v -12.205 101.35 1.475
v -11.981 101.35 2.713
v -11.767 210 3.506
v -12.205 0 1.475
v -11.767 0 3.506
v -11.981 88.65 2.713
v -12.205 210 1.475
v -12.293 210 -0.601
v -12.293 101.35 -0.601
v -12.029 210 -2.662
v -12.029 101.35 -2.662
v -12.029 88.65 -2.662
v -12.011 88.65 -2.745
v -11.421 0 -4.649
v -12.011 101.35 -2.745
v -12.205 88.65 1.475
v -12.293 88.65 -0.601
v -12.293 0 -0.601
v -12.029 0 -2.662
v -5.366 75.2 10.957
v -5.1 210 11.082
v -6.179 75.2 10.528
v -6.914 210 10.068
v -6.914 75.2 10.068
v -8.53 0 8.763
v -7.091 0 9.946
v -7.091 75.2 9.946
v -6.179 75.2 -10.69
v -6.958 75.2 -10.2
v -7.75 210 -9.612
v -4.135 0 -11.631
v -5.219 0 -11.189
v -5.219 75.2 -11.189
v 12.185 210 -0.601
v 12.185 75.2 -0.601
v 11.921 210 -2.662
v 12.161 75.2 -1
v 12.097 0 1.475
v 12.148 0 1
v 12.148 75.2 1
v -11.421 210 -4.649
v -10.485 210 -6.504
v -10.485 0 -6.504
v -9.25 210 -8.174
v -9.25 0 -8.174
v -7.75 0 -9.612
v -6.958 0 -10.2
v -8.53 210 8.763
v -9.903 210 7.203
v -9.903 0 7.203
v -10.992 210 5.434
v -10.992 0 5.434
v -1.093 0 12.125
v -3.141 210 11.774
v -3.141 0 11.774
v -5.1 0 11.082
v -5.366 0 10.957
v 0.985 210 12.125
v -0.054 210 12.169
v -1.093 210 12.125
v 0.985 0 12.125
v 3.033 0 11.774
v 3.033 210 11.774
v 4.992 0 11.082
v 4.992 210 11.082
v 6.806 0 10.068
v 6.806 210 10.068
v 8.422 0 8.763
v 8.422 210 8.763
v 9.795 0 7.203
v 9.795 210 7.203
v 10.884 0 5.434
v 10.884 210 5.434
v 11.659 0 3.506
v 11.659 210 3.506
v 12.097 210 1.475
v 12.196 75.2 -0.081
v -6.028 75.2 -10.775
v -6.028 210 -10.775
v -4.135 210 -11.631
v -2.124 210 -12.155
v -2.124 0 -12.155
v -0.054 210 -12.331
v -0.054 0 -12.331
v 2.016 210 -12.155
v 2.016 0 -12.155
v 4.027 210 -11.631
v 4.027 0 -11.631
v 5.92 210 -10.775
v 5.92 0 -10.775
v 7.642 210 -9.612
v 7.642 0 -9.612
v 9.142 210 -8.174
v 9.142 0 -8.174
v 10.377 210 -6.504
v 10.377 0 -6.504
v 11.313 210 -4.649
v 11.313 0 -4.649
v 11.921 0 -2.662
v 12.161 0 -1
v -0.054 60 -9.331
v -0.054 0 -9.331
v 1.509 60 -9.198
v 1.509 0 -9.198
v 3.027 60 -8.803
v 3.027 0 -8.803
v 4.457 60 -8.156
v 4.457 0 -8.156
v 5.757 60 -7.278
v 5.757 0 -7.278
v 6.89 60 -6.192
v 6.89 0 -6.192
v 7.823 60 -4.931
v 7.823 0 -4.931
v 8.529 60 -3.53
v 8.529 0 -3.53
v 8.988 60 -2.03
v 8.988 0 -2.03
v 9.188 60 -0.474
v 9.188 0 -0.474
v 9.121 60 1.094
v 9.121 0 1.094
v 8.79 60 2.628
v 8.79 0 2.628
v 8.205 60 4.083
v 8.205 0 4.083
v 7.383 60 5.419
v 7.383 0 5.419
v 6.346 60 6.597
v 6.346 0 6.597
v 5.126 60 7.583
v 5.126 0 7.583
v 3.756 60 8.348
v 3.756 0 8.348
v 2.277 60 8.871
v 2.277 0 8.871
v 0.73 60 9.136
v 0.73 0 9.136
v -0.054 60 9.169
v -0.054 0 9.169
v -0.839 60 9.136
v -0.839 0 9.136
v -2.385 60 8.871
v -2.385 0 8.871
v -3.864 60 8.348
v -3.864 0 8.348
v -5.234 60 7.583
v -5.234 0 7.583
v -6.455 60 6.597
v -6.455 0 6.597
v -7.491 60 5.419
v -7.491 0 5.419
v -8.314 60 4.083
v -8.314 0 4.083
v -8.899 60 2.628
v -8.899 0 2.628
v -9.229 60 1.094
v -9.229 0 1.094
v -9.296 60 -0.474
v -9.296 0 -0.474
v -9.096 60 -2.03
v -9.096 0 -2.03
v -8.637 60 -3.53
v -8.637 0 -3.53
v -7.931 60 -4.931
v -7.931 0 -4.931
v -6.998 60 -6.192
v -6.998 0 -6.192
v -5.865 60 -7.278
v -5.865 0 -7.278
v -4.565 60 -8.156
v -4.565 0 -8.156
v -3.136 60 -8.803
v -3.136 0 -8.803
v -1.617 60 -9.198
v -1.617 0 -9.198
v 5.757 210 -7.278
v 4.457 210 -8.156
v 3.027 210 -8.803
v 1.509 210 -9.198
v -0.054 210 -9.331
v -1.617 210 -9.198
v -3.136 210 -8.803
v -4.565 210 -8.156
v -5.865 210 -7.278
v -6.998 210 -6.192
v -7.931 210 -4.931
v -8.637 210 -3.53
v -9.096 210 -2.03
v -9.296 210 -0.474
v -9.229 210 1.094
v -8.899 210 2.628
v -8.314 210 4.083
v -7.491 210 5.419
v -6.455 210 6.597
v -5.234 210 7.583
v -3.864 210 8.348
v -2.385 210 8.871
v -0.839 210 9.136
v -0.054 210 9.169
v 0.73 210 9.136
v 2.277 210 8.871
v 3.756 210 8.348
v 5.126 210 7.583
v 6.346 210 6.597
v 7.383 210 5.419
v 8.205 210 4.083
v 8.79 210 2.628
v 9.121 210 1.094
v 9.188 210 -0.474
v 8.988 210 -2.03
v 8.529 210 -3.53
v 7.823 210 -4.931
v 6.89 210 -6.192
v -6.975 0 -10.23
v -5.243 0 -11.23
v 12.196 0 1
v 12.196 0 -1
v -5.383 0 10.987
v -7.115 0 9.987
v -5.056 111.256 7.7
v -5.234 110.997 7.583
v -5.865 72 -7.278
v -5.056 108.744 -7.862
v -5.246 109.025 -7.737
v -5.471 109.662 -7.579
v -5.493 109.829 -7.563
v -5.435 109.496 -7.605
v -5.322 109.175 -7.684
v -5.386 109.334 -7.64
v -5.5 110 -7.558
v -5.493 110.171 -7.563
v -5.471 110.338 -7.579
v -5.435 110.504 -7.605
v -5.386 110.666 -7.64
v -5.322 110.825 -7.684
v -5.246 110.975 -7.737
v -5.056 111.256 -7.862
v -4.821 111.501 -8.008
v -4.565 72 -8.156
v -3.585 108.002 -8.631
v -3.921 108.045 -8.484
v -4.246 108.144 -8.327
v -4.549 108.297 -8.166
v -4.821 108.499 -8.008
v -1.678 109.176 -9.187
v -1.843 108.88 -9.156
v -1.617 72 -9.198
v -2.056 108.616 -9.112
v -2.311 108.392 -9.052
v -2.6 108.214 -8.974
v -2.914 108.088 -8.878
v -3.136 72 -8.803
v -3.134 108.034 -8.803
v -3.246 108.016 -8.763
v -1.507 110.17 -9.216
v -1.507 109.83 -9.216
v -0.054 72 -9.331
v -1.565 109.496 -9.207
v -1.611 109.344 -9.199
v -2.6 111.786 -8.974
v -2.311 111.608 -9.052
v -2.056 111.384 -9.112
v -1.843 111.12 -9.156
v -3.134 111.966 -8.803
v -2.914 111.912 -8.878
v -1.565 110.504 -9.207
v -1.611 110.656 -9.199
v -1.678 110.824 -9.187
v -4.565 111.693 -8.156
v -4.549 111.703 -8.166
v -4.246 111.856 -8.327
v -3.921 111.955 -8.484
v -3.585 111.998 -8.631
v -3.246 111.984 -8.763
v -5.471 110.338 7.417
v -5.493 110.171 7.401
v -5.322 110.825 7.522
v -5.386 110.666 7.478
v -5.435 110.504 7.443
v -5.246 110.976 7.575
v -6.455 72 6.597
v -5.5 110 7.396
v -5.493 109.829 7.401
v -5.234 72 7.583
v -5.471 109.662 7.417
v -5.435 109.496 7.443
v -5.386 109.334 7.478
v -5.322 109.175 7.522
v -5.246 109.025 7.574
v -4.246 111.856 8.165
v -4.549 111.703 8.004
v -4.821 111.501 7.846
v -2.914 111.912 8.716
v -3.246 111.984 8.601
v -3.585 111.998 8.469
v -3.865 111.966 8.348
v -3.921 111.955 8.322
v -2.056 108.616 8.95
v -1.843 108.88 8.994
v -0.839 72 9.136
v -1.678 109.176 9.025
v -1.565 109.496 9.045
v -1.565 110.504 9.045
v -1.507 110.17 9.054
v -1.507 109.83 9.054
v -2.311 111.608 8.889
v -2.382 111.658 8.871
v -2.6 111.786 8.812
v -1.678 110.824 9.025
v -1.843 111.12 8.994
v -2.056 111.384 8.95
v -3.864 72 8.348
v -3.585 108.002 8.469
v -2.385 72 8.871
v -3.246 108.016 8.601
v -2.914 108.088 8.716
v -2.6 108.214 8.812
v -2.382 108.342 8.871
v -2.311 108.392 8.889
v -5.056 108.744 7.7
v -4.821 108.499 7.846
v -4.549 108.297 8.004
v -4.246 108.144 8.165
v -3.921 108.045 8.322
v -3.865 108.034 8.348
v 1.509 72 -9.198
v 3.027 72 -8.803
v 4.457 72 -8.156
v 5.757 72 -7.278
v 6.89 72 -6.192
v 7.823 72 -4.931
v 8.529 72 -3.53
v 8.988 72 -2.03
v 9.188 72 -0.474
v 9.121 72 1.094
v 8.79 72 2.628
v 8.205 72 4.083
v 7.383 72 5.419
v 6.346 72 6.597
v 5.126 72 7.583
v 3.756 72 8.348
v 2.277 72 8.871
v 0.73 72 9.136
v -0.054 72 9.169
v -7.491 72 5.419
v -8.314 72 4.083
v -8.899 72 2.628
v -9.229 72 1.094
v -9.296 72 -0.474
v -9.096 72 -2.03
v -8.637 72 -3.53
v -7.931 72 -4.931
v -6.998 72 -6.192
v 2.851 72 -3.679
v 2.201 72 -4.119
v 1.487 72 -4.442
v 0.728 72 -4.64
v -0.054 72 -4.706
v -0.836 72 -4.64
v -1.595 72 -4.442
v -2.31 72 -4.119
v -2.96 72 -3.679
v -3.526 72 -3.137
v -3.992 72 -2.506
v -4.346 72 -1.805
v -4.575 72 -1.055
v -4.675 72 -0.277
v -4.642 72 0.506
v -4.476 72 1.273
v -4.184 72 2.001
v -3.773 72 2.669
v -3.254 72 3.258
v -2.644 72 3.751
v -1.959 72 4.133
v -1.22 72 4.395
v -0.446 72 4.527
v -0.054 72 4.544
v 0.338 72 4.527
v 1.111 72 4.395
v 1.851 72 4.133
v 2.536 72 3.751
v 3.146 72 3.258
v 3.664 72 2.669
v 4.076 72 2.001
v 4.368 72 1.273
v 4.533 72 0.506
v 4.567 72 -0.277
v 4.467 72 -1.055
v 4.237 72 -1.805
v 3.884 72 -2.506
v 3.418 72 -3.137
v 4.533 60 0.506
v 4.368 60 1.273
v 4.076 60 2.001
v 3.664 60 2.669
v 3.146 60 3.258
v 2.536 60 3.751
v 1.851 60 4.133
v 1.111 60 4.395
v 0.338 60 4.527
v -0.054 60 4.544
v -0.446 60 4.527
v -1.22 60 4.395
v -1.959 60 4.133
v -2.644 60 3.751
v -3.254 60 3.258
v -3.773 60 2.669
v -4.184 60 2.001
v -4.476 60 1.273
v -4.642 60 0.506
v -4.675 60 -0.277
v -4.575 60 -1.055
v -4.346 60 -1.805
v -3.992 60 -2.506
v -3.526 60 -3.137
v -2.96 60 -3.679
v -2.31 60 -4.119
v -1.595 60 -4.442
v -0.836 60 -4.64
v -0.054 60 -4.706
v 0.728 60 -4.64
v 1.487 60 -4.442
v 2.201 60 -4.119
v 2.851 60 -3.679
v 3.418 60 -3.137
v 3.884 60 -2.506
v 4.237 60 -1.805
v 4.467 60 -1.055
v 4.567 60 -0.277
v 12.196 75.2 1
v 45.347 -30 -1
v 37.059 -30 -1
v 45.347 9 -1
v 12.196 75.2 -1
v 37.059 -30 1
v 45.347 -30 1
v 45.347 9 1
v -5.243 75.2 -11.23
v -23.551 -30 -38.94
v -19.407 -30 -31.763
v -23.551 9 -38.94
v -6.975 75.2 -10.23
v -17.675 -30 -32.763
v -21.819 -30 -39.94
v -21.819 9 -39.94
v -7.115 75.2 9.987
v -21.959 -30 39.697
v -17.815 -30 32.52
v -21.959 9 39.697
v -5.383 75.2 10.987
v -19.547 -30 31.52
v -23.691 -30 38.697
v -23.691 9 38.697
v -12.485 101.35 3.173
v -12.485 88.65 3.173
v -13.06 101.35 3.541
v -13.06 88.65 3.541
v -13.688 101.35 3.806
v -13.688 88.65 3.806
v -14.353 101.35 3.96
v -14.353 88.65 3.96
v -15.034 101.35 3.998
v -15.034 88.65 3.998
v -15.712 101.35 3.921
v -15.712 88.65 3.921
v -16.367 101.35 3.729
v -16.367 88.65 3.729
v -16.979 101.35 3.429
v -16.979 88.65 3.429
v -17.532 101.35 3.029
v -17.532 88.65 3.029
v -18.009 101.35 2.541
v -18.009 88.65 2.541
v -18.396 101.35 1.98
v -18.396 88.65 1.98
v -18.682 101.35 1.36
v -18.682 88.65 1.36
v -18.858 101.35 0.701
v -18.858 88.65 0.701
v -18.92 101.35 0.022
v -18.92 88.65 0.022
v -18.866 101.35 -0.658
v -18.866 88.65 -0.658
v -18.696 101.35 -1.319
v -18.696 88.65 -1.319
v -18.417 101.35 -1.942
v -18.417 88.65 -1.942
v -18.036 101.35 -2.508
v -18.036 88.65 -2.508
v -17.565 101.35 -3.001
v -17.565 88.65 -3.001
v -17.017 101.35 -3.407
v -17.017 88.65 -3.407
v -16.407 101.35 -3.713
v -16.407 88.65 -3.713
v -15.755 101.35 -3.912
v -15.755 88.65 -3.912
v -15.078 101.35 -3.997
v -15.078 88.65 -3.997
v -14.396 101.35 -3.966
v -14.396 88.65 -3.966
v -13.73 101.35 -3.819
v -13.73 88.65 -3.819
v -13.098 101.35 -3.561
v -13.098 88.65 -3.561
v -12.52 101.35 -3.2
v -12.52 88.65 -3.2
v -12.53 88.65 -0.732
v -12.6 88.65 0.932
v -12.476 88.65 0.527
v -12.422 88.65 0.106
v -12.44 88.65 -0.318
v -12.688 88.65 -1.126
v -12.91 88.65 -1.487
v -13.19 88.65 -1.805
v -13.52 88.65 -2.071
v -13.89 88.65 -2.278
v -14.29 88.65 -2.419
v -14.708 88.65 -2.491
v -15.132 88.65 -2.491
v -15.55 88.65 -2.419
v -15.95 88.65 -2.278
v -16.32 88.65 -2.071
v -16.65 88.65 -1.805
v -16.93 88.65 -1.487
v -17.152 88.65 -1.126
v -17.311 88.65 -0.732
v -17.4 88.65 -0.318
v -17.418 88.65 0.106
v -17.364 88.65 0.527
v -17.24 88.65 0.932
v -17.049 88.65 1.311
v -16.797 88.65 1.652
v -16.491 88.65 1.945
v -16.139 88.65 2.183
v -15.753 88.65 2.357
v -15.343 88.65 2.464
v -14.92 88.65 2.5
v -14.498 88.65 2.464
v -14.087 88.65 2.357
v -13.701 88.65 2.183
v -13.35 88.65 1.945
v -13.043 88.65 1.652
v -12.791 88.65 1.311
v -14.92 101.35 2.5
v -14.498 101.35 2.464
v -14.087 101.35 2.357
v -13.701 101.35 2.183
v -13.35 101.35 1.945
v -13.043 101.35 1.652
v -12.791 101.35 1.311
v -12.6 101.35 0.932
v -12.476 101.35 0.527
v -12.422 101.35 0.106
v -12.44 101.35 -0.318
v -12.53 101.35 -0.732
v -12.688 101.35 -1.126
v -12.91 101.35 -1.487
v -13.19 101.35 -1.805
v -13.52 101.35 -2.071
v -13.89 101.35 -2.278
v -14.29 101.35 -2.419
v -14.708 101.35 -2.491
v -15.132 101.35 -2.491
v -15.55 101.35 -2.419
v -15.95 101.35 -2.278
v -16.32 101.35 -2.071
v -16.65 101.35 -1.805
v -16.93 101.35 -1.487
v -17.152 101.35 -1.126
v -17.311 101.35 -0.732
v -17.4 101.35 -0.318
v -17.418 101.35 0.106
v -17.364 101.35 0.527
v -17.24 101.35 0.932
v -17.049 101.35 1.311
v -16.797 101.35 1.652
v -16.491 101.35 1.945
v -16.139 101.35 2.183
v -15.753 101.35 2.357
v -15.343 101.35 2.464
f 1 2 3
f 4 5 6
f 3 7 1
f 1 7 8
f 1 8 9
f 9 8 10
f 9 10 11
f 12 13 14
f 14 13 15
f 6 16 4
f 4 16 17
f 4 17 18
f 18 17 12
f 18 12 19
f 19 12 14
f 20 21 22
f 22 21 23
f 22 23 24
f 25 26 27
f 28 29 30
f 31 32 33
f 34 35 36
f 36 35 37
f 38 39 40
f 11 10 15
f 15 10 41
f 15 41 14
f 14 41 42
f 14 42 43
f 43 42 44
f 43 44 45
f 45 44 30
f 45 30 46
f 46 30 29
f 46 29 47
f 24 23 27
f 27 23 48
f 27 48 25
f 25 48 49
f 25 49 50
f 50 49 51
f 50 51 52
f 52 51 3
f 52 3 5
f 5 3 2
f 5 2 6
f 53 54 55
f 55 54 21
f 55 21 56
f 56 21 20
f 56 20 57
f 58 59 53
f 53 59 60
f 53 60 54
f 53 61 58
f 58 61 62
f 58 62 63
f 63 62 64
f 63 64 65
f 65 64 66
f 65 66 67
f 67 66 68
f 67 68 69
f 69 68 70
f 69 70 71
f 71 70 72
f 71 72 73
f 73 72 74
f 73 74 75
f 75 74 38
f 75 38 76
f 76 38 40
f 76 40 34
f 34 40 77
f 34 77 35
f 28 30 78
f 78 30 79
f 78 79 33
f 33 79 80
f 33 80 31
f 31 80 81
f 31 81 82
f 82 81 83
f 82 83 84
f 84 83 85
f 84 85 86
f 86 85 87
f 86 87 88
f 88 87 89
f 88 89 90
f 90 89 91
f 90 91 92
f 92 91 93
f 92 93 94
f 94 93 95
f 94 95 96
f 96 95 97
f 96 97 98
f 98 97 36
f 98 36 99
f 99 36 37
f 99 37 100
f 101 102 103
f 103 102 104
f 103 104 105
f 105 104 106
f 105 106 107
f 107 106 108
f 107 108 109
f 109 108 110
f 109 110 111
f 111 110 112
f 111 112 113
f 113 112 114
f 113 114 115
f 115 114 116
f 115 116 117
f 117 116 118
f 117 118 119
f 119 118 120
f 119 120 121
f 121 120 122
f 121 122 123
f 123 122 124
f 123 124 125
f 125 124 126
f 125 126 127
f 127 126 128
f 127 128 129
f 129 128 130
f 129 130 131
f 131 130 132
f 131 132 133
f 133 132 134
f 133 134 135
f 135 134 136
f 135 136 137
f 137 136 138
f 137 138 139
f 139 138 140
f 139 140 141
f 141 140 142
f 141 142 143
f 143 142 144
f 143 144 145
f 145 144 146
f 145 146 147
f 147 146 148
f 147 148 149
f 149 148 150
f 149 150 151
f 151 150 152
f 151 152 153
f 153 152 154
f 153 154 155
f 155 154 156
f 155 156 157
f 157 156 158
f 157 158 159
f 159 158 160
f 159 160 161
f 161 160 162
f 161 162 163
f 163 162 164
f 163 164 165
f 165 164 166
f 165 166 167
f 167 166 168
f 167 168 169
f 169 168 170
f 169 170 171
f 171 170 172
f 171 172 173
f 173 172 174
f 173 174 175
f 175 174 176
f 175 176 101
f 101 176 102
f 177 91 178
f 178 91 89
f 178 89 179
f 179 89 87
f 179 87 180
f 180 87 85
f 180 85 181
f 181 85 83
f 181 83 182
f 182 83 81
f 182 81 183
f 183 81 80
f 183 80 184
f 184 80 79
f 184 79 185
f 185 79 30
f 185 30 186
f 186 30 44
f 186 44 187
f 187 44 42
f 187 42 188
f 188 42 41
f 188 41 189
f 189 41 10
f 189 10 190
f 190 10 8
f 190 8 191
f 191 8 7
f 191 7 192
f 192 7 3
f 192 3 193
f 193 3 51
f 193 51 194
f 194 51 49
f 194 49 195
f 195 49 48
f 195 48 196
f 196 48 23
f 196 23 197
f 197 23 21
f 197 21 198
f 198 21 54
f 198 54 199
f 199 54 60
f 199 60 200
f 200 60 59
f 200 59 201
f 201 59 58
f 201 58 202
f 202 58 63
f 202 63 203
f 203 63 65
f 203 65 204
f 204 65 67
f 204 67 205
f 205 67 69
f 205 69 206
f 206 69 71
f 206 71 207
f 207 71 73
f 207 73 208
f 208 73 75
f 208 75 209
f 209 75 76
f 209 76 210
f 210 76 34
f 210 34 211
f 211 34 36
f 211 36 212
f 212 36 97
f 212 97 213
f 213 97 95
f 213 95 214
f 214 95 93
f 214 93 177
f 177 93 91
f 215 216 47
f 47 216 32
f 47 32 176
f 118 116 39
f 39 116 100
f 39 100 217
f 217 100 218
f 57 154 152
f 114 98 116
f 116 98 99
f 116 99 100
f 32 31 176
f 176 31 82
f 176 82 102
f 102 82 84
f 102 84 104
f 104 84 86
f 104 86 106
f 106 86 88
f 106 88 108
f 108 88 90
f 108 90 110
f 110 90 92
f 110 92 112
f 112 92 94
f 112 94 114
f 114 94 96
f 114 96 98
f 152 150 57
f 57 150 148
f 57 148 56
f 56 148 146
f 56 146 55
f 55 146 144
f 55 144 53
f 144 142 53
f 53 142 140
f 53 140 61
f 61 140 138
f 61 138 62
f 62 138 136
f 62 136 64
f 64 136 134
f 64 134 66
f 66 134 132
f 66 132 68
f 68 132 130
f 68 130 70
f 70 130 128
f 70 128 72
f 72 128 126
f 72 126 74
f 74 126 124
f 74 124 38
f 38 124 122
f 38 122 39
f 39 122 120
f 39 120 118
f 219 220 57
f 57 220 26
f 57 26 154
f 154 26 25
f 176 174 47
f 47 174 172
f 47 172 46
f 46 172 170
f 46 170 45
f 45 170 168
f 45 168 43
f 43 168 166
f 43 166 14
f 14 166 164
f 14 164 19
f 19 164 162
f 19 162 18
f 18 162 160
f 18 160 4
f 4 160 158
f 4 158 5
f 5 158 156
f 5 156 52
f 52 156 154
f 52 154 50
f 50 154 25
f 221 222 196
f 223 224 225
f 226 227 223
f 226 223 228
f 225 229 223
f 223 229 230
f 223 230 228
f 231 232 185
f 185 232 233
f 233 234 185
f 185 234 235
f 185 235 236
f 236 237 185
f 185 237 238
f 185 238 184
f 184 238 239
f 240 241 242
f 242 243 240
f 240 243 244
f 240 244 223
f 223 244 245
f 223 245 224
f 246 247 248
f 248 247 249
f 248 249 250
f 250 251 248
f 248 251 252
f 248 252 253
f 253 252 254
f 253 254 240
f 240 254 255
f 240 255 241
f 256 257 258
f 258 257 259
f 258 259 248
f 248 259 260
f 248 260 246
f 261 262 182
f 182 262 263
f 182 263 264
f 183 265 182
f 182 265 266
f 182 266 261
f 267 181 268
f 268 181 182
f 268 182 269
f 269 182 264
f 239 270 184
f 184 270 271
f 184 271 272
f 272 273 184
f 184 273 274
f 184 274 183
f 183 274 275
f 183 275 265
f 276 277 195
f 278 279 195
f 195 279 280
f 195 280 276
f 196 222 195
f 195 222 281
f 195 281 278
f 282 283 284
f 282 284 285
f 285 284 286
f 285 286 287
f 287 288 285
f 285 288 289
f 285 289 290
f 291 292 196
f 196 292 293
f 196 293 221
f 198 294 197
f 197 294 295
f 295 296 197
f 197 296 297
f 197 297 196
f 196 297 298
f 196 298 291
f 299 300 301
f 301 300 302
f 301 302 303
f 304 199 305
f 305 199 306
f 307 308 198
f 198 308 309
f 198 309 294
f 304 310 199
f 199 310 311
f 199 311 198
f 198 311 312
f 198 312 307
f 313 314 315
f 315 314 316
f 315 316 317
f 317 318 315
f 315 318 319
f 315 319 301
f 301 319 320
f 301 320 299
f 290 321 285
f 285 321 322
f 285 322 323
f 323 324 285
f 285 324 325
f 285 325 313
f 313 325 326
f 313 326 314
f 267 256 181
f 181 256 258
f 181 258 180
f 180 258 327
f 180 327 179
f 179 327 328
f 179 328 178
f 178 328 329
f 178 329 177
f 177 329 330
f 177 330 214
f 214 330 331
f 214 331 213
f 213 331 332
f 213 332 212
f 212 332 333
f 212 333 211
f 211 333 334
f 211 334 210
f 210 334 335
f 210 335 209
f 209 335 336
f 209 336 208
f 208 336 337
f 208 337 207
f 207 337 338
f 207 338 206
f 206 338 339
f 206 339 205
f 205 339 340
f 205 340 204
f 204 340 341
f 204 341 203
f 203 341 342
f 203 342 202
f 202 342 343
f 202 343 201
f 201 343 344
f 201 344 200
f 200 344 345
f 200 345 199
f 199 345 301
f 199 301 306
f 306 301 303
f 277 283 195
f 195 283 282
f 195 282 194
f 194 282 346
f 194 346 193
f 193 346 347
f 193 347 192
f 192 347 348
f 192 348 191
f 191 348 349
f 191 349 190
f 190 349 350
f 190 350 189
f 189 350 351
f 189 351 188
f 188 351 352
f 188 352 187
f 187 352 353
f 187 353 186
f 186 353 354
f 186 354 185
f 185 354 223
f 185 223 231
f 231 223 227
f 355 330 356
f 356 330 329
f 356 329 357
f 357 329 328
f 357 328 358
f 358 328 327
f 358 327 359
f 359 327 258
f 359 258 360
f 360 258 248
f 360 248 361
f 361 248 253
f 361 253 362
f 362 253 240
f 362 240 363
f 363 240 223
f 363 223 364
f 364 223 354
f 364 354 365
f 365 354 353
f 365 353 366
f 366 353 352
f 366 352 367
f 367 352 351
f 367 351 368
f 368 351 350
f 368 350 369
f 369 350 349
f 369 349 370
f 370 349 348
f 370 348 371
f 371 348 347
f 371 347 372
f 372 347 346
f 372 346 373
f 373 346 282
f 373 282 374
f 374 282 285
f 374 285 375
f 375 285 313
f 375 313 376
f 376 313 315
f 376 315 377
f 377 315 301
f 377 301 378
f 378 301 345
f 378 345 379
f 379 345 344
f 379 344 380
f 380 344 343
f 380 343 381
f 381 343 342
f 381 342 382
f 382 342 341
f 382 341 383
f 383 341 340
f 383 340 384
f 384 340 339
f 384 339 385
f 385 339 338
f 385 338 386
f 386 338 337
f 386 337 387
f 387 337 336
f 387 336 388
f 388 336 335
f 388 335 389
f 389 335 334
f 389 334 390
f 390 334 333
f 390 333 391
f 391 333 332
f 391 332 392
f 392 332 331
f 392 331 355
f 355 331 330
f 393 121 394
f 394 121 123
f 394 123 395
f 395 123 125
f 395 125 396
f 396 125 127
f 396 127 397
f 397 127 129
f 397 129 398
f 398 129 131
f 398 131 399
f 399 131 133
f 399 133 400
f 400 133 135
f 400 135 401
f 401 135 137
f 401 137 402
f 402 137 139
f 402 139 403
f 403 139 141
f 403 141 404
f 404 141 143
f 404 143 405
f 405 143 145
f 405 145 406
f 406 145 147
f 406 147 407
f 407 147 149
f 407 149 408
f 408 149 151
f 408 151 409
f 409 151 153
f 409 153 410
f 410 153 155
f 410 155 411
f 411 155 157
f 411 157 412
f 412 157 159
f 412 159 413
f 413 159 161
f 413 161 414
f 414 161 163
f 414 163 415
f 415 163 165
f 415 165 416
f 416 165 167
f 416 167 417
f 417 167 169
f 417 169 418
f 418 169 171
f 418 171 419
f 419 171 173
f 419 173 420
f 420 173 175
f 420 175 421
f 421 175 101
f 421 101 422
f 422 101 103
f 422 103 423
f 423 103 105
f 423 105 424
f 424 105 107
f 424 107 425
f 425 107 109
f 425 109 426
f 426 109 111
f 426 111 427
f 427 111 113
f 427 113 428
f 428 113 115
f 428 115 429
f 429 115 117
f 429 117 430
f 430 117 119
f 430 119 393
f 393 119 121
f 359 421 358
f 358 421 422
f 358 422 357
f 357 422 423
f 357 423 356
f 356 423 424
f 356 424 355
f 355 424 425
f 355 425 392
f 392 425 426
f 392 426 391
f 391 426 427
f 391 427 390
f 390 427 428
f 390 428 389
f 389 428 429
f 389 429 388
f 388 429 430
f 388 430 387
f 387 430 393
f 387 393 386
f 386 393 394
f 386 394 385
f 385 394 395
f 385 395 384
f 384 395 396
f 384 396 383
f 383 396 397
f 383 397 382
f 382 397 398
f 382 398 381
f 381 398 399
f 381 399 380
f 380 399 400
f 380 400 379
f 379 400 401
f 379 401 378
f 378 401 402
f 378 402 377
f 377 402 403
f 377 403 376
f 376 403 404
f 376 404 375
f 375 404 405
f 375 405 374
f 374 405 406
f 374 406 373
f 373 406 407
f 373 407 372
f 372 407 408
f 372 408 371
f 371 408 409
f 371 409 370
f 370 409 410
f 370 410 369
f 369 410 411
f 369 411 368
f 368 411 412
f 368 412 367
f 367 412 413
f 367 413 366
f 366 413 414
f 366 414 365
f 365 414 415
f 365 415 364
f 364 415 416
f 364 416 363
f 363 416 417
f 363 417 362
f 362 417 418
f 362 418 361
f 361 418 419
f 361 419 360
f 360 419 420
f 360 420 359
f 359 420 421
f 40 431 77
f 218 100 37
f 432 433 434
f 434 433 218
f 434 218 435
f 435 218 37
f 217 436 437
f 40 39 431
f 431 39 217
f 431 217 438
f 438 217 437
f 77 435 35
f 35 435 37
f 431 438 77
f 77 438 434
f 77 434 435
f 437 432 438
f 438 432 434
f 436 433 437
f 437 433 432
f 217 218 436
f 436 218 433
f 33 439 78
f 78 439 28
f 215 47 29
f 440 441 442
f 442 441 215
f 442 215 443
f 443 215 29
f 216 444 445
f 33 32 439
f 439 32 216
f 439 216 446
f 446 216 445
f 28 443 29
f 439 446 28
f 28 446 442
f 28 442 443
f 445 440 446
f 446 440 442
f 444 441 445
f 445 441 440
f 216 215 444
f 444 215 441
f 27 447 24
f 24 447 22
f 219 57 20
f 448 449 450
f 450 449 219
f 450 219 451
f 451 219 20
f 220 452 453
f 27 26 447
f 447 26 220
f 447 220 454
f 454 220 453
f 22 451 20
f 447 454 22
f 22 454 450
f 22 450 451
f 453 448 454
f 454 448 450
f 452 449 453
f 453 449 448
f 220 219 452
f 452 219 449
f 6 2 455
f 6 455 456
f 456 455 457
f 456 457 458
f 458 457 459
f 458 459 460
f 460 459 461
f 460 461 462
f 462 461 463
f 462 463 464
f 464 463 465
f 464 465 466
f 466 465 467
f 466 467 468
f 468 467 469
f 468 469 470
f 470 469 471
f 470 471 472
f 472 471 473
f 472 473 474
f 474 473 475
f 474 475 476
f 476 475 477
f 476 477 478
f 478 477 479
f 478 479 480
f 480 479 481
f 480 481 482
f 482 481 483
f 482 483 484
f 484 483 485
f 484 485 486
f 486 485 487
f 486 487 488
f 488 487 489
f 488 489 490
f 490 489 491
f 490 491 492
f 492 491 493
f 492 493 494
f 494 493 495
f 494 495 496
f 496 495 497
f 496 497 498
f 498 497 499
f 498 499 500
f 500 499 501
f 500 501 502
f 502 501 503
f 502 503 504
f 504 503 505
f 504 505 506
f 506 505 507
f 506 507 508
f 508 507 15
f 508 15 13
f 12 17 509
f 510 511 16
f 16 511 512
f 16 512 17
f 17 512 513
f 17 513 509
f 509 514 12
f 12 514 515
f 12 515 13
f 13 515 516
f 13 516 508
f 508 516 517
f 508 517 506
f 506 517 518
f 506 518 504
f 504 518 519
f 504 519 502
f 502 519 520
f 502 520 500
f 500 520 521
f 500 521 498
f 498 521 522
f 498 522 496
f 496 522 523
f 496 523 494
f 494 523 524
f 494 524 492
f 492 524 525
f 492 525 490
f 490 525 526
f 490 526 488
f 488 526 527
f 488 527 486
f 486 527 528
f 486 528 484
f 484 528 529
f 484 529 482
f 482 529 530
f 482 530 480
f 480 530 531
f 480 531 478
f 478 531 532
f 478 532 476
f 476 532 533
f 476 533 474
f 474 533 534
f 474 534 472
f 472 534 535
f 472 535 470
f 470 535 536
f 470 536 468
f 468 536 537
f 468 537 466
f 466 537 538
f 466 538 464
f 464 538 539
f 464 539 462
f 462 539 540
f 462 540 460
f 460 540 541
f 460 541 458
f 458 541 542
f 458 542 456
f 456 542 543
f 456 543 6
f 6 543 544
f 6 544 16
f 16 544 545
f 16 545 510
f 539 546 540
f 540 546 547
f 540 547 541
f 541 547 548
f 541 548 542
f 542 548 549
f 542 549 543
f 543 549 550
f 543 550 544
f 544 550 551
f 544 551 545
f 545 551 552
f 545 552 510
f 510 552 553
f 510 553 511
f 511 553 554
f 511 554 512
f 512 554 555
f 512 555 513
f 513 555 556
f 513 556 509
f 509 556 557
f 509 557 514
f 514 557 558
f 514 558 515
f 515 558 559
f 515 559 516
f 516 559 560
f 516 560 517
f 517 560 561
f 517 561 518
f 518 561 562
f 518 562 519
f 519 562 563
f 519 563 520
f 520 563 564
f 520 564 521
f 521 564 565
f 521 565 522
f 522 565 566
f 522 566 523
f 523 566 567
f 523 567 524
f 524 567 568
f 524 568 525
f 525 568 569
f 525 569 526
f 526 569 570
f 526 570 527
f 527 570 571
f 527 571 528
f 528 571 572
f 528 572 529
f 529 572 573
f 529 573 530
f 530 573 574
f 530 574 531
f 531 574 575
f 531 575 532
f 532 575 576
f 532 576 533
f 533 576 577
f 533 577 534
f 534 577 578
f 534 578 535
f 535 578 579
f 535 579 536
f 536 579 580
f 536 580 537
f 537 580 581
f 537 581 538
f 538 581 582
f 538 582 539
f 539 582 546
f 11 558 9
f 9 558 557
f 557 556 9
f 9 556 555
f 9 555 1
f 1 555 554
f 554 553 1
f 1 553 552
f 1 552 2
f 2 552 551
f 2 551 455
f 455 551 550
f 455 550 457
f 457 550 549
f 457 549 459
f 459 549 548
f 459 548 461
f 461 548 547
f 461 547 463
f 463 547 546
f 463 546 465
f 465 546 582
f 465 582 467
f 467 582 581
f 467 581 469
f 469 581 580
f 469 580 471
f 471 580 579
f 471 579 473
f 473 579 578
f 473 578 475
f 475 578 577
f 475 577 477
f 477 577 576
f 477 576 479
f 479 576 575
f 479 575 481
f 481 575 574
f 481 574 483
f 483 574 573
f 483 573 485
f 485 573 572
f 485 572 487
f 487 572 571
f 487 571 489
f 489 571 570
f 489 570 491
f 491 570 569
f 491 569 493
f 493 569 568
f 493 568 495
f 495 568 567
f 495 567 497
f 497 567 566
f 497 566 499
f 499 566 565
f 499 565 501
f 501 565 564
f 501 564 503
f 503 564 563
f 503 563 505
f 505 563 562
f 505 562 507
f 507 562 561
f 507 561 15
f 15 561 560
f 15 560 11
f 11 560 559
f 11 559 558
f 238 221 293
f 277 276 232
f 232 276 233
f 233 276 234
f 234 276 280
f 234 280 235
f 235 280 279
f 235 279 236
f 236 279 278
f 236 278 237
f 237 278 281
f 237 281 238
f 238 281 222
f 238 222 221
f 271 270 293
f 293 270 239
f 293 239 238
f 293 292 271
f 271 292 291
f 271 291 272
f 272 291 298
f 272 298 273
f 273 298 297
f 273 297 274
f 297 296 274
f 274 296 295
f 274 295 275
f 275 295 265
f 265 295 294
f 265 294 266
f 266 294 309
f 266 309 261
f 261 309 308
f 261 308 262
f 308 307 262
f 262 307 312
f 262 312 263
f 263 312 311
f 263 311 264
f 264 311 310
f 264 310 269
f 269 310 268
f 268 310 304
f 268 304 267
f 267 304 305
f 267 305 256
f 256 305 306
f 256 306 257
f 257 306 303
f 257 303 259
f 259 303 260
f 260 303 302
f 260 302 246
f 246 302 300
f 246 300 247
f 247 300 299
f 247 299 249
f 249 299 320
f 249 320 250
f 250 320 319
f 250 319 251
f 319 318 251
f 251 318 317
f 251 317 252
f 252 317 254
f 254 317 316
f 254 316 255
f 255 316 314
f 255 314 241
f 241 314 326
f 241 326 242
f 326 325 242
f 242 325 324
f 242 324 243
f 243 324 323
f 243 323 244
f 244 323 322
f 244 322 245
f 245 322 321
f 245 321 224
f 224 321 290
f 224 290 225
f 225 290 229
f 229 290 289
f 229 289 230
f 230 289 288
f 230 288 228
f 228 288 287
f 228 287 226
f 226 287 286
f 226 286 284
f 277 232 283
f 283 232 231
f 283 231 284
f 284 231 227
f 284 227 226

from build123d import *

# Parameters (mm, degrees)
SKETCH2_R                = 12.25
SKETCH2_R_2              = 9.25
BOSS_EXTRUDE1_DEPTH      = 210
SKETCH5_R                = 9.5
SKETCH5_R_2              = 4.625
BOSS_EXTRUDE2_DEPTH      = 12
BOSS_EXTRUDE3_DEPTH      = 1
CIRPATTERN1_COUNT        = 3
BOSS_EXTRUDE4_DEPTH      = 6.35
BOSS_EXTRUDE4_DEPTH_BACK = 6.35
SKETCH8_R                = 4
SKETCH8_R_2              = 2.5
SKETCH9_W                = 2
SKETCH9_H                = 19.5


with BuildPart() as part:
    # Sketch2 → Boss-Extrude1 (new body)
    with BuildSketch(Plane(origin=(-2.465768249, 0, -0.081027564), x_dir=(1, 0, 0), z_dir=(0, 1, 0))):
        with Locations((2.411661176, 0)):
            Circle(SKETCH2_R)
        with Locations((2.411661176, 0)):
            Circle(SKETCH2_R_2, mode=Mode.SUBTRACT)
    extrude(amount=BOSS_EXTRUDE1_DEPTH)

    # Sketch5 → Boss-Extrude2 (add)
    with BuildSketch(Plane(origin=(0, 60, 0), x_dir=(1, 0, 0), z_dir=(0, 1, 0))):
        with Locations((-0.054107074, 0.081027564)):
            Circle(SKETCH5_R)
        with Locations((-0.054107074, 0.081027564)):
            Circle(SKETCH5_R_2, mode=Mode.SUBTRACT)
    extrude(amount=BOSS_EXTRUDE2_DEPTH)

    # Sketch7 → Boss-Extrude3 (add, symmetric)
    with BuildSketch(Plane.XY):
        Polygon((12.195892926, 75.2), (9.828211369, 75.2), (11.195892926, 0), (12.195892926, 0), (37.059460314, -30), (45.34731611, -30), (45.34731611, 9), align=None)
    boss_extrude3 = extrude(amount=BOSS_EXTRUDE3_DEPTH, both=True)

    # CirPattern1: Boss-Extrude3 ×3 about axis
    cirpattern1_axis = Axis((-0.054107074, 210, -0.081027564), (0, -1, 0))
    for i in range(1, CIRPATTERN1_COUNT):
        add(boss_extrude3.rotate(cirpattern1_axis, i * 360 / CIRPATTERN1_COUNT))

    # Sketch8 → Boss-Extrude4 (add, two sides: drawn at the far end of the back side and taken through both)
    with BuildSketch(Plane(origin=(0.379836366, 95, 0), x_dir=(1, 0, 0), z_dir=(0, 1, 0)).offset(-BOSS_EXTRUDE4_DEPTH_BACK)):
        with Locations((-15.3, 0)):
            Circle(SKETCH8_R)
        with Locations((-15.3, 0)):
            Circle(SKETCH8_R_2, mode=Mode.SUBTRACT)
    extrude(amount=BOSS_EXTRUDE4_DEPTH + BOSS_EXTRUDE4_DEPTH_BACK)

    # Sketch9 → Revolve-Thin1 (revolve)
    with BuildSketch(Plane(origin=(0, 110, 0), x_dir=(1, 0, 0), z_dir=(0, 1, 0))):
        with Locations((-2.5, 0.25)):
            Rectangle(SKETCH9_W, SKETCH9_H)
    revolve(axis=Axis((-3.5, 110, -10), (0, 0, 1)))


solid = part.part
